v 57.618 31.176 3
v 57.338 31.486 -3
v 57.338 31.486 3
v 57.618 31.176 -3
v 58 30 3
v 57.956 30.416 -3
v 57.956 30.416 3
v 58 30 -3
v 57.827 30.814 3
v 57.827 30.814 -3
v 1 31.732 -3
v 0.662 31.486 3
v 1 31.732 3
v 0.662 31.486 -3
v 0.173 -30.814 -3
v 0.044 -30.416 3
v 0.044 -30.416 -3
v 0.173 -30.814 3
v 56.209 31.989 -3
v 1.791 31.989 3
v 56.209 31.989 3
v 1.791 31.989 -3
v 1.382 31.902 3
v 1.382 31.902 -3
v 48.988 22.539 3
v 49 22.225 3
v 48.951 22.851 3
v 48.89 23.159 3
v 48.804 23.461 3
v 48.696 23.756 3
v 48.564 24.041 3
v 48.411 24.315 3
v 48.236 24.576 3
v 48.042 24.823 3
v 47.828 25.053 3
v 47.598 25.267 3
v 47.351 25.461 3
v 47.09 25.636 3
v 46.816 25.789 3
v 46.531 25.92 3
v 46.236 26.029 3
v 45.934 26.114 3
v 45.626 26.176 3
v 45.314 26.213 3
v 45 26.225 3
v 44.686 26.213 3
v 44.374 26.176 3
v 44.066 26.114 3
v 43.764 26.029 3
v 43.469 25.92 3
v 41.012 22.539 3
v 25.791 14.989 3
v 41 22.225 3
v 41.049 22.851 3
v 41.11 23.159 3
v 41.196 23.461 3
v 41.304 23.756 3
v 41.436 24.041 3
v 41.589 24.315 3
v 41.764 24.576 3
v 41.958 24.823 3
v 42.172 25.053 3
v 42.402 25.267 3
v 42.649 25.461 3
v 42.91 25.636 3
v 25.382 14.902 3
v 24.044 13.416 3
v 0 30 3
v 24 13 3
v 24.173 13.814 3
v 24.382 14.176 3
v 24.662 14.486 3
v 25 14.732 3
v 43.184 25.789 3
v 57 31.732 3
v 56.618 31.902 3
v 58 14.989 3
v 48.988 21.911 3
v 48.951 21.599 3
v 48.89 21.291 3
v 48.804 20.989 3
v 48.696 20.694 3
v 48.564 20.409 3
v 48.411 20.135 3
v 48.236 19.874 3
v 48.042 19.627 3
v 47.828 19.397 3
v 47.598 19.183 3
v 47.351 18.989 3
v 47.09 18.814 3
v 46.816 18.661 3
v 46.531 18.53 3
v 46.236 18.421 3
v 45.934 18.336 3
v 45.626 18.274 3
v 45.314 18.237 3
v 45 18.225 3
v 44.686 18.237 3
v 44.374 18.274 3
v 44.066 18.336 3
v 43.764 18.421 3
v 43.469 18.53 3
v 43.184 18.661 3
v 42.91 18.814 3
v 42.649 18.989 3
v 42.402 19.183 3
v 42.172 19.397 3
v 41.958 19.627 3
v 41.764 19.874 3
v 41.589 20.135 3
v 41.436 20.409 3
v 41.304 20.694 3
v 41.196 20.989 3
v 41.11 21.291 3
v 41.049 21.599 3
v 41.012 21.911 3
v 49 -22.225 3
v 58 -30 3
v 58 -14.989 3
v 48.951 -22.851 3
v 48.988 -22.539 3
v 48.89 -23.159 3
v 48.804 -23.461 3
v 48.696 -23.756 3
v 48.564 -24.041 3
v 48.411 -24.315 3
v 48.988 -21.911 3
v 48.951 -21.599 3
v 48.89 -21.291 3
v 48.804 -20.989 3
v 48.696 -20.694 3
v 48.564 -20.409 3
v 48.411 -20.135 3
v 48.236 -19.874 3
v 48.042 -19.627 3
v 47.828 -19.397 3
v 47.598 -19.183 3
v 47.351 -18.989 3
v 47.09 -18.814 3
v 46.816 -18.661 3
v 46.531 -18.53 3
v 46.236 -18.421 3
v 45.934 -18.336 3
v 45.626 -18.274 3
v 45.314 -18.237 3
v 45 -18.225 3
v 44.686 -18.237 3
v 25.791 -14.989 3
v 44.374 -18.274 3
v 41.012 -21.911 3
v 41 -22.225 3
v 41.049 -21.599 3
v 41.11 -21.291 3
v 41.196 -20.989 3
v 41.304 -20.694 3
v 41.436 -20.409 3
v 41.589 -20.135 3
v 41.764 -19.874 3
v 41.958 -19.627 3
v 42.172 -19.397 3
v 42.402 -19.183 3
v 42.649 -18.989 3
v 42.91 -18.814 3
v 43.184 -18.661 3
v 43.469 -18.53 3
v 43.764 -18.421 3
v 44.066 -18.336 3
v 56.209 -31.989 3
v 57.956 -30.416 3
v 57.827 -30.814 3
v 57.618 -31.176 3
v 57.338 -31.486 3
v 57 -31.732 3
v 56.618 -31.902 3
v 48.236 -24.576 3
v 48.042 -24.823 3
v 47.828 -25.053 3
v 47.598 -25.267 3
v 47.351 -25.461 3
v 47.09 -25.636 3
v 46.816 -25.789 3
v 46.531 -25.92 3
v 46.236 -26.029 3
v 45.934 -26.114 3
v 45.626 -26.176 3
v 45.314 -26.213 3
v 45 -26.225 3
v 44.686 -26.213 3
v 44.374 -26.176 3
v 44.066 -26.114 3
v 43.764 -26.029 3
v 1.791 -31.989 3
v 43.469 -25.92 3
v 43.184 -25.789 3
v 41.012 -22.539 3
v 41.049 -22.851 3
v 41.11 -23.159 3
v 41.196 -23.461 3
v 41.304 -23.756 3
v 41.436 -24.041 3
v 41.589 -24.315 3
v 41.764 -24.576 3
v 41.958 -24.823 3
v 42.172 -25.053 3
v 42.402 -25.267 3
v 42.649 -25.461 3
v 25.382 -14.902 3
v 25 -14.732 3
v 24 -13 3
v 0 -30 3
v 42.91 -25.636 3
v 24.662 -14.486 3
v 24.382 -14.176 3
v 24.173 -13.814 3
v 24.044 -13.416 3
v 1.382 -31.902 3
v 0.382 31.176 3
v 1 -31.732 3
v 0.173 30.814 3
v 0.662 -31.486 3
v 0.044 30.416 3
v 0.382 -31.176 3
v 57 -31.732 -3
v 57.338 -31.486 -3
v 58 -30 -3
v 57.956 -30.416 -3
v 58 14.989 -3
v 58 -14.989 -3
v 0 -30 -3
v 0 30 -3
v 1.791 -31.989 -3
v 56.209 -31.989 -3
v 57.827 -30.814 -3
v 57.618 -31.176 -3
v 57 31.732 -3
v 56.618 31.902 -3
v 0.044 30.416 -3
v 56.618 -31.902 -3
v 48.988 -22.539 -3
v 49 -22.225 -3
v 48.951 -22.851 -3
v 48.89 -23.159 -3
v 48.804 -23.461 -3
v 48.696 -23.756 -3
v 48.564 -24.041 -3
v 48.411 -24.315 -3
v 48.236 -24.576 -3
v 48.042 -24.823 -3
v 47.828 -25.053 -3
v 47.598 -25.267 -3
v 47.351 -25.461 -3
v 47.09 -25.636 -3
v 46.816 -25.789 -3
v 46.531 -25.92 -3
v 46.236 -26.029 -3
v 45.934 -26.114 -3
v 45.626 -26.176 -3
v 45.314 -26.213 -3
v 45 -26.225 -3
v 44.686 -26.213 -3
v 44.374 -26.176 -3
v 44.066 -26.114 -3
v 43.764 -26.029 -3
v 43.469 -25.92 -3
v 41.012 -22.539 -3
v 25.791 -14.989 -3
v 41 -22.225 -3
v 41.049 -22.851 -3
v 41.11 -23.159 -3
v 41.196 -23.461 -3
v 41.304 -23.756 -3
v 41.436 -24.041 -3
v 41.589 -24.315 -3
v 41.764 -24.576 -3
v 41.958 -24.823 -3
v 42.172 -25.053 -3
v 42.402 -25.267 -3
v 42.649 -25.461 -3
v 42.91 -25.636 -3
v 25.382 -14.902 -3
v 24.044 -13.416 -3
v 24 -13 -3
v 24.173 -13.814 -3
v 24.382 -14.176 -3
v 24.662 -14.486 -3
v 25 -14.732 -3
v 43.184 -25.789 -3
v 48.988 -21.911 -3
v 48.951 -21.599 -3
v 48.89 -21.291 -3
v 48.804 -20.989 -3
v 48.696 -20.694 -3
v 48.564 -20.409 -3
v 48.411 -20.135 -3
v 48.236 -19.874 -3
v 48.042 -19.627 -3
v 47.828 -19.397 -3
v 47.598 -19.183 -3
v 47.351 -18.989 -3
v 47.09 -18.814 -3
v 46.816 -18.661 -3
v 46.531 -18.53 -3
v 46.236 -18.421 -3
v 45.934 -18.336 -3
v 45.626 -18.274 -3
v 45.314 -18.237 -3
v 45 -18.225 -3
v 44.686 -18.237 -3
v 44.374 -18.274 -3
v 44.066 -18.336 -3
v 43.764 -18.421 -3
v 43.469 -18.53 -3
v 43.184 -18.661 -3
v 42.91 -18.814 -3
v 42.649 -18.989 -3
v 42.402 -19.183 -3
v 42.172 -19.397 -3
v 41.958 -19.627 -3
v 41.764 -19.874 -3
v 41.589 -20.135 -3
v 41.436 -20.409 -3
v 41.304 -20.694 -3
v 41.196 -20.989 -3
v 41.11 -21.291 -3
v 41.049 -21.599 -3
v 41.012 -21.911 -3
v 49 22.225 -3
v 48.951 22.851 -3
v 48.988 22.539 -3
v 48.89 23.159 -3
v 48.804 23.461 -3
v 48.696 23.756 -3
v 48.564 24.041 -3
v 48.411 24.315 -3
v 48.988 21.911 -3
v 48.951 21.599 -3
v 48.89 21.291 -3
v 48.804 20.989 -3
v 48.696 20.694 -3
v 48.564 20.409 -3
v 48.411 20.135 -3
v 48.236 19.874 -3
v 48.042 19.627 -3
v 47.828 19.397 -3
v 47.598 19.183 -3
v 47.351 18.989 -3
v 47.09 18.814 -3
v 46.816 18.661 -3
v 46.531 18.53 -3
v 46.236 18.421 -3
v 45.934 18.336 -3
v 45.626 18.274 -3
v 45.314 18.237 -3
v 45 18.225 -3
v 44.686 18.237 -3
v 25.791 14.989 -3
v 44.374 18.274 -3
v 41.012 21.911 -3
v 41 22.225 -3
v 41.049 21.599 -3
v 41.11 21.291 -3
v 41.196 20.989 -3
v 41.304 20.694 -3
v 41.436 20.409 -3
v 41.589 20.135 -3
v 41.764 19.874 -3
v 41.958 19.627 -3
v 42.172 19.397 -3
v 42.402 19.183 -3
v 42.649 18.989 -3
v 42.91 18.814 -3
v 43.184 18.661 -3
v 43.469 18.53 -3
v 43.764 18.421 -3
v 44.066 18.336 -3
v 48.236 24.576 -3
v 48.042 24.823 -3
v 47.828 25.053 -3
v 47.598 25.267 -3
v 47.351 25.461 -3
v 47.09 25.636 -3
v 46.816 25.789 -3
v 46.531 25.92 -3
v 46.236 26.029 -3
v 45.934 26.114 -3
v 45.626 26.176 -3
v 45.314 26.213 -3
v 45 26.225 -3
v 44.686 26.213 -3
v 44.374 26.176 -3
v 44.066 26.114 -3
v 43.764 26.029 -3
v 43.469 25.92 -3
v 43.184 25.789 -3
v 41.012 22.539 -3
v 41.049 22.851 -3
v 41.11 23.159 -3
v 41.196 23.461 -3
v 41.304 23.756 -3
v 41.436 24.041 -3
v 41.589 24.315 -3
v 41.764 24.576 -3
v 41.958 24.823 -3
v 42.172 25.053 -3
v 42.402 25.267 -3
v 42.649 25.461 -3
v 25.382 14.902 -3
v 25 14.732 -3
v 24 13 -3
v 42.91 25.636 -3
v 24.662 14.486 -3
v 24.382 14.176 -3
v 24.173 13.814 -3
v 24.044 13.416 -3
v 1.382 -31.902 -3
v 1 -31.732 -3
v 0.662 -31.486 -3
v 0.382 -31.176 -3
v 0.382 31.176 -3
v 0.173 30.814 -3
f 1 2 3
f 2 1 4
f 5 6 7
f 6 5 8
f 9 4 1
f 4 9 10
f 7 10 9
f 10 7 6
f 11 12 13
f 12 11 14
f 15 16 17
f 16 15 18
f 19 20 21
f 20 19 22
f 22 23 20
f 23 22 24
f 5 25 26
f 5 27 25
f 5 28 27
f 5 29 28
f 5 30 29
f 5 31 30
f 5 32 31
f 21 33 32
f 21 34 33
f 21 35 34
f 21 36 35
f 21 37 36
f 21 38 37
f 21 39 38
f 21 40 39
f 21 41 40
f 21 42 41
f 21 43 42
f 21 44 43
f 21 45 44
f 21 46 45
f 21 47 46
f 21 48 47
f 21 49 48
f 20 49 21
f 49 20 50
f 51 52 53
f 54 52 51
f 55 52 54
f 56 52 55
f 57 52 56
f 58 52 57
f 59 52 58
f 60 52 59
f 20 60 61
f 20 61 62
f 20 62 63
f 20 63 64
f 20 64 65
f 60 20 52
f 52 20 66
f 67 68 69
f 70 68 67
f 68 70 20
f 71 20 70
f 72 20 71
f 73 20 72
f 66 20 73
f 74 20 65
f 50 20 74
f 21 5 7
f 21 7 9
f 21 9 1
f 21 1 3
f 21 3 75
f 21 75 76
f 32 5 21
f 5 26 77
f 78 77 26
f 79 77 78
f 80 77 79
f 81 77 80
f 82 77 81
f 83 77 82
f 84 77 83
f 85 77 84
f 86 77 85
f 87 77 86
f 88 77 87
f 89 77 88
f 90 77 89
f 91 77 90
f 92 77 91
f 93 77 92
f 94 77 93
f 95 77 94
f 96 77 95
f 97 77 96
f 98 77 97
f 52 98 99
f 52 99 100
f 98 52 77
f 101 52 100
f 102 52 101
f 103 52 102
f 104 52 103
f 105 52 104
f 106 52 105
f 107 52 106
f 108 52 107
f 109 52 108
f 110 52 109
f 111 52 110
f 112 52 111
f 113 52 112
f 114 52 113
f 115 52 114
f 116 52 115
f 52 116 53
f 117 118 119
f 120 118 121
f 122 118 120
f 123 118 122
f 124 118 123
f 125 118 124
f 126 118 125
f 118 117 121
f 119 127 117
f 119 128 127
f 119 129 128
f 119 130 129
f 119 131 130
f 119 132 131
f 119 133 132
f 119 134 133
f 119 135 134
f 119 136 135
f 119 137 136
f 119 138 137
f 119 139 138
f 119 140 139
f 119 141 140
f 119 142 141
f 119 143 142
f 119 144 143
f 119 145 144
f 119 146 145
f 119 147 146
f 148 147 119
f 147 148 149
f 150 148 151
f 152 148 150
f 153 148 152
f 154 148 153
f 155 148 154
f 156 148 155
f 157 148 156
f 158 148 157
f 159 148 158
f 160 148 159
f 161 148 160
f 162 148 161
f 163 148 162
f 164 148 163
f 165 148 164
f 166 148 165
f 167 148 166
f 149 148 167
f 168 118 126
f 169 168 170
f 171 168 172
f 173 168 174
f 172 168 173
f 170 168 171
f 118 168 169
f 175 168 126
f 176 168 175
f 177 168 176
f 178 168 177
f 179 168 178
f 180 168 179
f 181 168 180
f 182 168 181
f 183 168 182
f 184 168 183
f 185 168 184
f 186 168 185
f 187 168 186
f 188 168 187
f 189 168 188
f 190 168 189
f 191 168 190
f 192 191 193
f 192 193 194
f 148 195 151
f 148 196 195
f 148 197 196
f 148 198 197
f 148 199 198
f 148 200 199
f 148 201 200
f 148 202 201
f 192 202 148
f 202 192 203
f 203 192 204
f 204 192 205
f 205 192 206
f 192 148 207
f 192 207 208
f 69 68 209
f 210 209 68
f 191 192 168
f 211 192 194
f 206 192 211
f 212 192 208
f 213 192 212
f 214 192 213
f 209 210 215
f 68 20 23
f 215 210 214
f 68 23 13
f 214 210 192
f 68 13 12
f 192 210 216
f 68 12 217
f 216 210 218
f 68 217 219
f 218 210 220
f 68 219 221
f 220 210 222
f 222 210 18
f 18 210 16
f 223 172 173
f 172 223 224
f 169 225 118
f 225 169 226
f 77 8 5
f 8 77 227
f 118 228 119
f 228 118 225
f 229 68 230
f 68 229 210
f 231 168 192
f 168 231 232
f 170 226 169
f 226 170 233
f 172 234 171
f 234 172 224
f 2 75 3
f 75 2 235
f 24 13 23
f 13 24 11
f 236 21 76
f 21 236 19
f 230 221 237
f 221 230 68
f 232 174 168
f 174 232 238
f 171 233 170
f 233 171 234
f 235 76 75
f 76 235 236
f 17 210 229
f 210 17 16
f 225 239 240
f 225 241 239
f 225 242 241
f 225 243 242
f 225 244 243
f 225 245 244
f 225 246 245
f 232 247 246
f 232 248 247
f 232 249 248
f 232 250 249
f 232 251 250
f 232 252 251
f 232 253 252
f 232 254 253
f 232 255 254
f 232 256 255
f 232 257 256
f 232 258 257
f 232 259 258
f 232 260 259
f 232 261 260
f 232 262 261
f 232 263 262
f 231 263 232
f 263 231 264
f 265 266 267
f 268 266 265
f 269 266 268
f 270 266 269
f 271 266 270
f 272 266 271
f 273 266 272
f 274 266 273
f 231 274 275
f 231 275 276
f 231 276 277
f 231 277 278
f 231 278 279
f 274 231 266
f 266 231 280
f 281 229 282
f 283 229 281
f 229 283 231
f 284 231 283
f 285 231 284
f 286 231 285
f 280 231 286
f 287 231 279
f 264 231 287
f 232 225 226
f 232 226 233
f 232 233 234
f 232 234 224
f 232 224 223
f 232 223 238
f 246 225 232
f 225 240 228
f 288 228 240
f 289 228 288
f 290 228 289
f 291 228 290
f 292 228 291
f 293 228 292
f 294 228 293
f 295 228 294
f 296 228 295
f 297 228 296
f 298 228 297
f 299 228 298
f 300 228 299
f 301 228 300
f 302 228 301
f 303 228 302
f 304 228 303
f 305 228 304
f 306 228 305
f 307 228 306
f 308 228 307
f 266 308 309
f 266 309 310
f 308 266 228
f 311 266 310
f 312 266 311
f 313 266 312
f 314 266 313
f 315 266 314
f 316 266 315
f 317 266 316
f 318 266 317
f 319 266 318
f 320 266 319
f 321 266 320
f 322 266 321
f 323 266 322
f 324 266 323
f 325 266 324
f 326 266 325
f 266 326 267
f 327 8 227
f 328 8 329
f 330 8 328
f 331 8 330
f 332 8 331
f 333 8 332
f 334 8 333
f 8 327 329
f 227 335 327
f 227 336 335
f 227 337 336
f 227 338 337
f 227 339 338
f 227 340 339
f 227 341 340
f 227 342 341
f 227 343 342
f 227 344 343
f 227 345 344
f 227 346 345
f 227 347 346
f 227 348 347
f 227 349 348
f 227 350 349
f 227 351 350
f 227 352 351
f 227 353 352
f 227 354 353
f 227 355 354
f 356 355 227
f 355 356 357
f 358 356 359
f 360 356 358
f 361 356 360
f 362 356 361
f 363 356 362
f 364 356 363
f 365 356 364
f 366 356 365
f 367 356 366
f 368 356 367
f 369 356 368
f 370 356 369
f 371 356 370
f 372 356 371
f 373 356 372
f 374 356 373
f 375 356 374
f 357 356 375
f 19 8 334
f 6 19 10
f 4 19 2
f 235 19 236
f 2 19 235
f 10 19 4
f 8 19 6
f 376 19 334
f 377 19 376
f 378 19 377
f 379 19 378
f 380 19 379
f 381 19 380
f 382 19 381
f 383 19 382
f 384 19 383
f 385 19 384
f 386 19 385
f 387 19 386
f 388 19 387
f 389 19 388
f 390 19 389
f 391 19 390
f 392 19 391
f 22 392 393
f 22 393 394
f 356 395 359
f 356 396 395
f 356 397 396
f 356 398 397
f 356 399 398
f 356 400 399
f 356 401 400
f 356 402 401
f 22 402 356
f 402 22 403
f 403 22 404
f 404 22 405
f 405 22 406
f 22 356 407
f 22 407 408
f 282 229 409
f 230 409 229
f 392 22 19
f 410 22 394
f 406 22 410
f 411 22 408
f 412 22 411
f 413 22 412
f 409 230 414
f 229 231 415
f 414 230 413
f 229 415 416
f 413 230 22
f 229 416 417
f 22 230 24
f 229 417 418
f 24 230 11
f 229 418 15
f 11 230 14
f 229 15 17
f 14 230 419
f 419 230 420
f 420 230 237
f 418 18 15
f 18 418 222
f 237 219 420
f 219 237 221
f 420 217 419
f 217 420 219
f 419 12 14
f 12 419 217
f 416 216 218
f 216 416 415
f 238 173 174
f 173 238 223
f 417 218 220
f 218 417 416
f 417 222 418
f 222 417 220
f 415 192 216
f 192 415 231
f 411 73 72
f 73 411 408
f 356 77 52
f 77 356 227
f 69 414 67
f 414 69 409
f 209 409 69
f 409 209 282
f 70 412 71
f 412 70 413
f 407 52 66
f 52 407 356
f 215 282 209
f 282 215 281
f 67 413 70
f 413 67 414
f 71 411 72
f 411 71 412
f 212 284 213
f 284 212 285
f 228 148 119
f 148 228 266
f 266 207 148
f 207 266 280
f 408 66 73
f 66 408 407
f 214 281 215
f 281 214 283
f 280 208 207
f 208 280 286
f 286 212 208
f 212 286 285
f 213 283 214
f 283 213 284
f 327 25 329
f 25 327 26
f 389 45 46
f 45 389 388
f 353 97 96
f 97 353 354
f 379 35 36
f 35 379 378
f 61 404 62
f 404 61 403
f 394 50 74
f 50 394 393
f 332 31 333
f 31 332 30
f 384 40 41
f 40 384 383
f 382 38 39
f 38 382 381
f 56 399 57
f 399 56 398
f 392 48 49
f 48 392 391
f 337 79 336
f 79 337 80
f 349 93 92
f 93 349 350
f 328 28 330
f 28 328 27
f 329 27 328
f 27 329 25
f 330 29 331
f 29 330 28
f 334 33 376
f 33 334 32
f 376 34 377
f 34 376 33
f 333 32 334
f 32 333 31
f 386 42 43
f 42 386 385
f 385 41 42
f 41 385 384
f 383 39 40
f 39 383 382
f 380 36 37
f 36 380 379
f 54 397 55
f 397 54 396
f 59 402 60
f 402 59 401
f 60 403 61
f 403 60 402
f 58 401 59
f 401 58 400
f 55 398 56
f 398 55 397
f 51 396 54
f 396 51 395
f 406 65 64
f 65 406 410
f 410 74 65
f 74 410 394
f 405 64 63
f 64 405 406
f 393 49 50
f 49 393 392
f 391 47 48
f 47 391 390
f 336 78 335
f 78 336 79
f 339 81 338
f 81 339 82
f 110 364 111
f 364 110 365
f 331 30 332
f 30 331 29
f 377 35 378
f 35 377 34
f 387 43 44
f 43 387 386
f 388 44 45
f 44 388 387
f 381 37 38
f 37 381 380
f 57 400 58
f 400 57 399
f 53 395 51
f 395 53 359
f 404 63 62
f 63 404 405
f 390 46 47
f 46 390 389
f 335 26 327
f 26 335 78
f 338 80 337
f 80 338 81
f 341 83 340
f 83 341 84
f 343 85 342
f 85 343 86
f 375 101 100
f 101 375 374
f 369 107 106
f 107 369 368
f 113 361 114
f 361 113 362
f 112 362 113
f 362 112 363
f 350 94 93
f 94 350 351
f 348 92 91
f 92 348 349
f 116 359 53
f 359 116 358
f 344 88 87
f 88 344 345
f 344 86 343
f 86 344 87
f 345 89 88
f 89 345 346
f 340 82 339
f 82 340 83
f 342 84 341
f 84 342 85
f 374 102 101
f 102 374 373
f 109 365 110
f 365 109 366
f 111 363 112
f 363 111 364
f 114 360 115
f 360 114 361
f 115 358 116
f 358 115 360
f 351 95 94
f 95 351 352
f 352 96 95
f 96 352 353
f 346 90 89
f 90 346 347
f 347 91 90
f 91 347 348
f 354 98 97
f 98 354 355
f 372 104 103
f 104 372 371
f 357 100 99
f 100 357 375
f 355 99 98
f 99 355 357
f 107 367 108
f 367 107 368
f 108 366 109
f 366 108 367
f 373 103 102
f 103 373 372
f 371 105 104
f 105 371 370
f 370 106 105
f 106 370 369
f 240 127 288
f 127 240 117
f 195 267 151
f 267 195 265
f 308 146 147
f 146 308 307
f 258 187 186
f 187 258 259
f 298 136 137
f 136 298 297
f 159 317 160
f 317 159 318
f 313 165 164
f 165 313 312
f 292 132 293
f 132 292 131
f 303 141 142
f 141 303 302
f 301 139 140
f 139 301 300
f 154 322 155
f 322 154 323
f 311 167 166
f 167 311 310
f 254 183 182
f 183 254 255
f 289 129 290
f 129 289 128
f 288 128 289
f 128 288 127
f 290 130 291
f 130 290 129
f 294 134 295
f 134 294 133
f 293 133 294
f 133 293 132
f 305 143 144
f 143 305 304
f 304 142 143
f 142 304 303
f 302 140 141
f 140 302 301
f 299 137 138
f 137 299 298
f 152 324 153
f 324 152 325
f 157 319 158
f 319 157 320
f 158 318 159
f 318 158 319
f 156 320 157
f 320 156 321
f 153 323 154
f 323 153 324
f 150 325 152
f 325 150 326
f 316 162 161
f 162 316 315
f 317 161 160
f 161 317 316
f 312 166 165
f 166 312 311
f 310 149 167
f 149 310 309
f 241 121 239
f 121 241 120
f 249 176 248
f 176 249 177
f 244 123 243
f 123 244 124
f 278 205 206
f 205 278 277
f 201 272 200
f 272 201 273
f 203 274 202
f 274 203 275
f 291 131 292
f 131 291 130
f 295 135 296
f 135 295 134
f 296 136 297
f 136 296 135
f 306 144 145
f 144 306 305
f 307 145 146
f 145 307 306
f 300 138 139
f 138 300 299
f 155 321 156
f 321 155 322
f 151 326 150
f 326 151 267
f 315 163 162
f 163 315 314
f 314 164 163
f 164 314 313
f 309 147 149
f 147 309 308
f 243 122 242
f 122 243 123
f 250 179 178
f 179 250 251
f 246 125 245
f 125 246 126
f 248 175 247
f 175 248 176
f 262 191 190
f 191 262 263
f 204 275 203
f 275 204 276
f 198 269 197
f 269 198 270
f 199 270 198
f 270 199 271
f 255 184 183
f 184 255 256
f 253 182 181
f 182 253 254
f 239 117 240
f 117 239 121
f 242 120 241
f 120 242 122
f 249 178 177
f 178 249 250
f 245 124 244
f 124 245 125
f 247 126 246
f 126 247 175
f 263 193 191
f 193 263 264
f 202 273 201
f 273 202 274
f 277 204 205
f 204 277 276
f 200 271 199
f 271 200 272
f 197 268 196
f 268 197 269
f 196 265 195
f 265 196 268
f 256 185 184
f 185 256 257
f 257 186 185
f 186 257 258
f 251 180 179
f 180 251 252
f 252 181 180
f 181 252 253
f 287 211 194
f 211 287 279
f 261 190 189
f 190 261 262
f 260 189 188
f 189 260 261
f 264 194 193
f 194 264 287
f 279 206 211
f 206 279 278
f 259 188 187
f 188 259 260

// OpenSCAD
// file: roundedcube.scad
// Higher definition curves
$fs = 0.01;

module roundedcube(size = [ 1, 1, 1 ], center = false, radius = 0.5,
                   apply_to = "all") {
  // If single value, convert to [x, y, z] vector
  size = (size[0] == undef) ? [ size, size, size ] : size;

  translate_min = radius;
  translate_xmax = size[0] - radius;
  translate_ymax = size[1] - radius;
  translate_zmax = size[2] - radius;

  diameter = radius * 2;

  module build_point(type = "sphere", rotate = [ 0, 0, 0 ]) {
    if (type == "sphere") {
      sphere(r = radius);
    } else if (type == "cylinder") {
      rotate(a = rotate) cylinder(h = diameter, r = radius, center = true);
    }
  }

  obj_translate = (center == false)
                      ? [ 0, 0, 0 ]
                      : [ -(size[0] / 2), -(size[1] / 2), -(size[2] / 2) ];

  translate(v = obj_translate) {
    hull() {
      for (translate_x = [ translate_min, translate_xmax ]) {
        x_at = (translate_x == translate_min) ? "min" : "max";
        for (translate_y = [ translate_min, translate_ymax ]) {
          y_at = (translate_y == translate_min) ? "min" : "max";
          for (translate_z = [ translate_min, translate_zmax ]) {
            z_at = (translate_z == translate_min) ? "min" : "max";

            translate(v =
                          [
                            translate_x, translate_y,
                            translate_z
                          ]) if ((apply_to == "all") ||
                                 (apply_to == "xmin" && x_at == "min") ||
                                 (apply_to == "xmax" && x_at == "max") ||
                                 (apply_to == "ymin" && y_at == "min") ||
                                 (apply_to == "ymax" && y_at == "max") ||
                                 (apply_to == "zmin" && z_at == "min") ||
                                 (apply_to == "zmax" && z_at == "max")) {
              build_point("sphere");
            }
            else {
              rotate =
                  (apply_to == "xmin" || apply_to == "xmax" || apply_to == "x")
                      ? [ 0, 90, 0 ]
                      : ((apply_to == "ymin" || apply_to == "ymax" ||
                          apply_to == "y")
                             ? [ 90, 90, 0 ]
                             : [ 0, 0, 0 ]);
              build_point("cylinder", rotate);
            }
          }
        }
      }
    }
  }
}
// file: common/common_functions.scad
// common_functions.scad

function get_visual_overrun() = 0.1;

function ft_to_cm(ft) = ft * 30.48;

function cm_to_ft(cm) = cm / 30.48;

function in_to_cm(in) = in * 2.54;

function cm_to_in(cm) = cm / 2.54;
// main file
/**
 * @file sight_pusher_bracket.scad
 * @brief Sight-pusher bracket.
 *
 * units: millimeter
 *
 */

//ECHO: BASE_LENGTH = 58
//ECHO: BASE_WIDTH = 64
//ECHO: THICKNESS = 6
//ECHO: BOLT_HOLE_DIAMETER = 8
//ECHO: BOLT_HOLE_OFFSET_L = 45
//ECHO: BOLT_HOLE_C2C = 44.45
//ECHO: INNER_CUTOUT_LENGTH = 36
//ECHO: INNER_CUTOUT_WIDTH = 30
//ECHO: INNER_CUTOUT_OFFSET_L = 24

use <common/common_functions.scad>
use <roundedcube.scad>

BOLT_HOLE_DIAMETER = 8.0; // 5/16" rouned up
//BOLT_HOLE_DIAMETER = in_to_mm(5.0 / 16.0);

THICKNESS = 6.0;
BASE_LENGTH = 58.0;
BASE_WIDTH = 64.0;

INNER_CUTOUT_OFFSET_L = 24.0;
INNER_CUTOUT_LENGTH = 34.0 + 2; // Extend past the part for the rouned edges
INNER_CUTOUT_WIDTH = 30.0;

// Offset from top, down the length
BOLT_HOLE_OFFSET_L = 45.0;

// 44.45 (1 3/4 inches) bolt hole center-to-center
BOLT_HOLE_C2C = 44.45;

module drill_hole_cyl()
{
    #cylinder(h = THICKNESS + 1, d = BOLT_HOLE_DIAMETER, center = true, $fn = 80);
}

module inner_cutout()
{
    #roundedcube(
        [INNER_CUTOUT_LENGTH, INNER_CUTOUT_WIDTH, THICKNESS + 1],
        center = true,
        radius = 2.0,
        apply_to = "z");
}

module base()
{
    roundedcube(
        [BASE_LENGTH, BASE_WIDTH, THICKNESS],
        center = true,
        radius = 2.0,
        apply_to = "z"
    );
}

module assembly()
{
    difference()
    {
        translate([BASE_LENGTH / 2, 0, 0])
            base();
        
        translate([INNER_CUTOUT_LENGTH / 2, 0, 0])
            translate([INNER_CUTOUT_OFFSET_L, 0, 0])
                inner_cutout();

        translate([BOLT_HOLE_OFFSET_L, BOLT_HOLE_C2C / 2, 0])
            drill_hole_cyl();
        translate([BOLT_HOLE_OFFSET_L, -BOLT_HOLE_C2C / 2, 0])
            drill_hole_cyl();
    }
}

assembly();

echo(BASE_LENGTH = BASE_LENGTH);
echo(BASE_WIDTH = BASE_WIDTH);
echo(THICKNESS = THICKNESS);
echo(BOLT_HOLE_DIAMETER = BOLT_HOLE_DIAMETER);
echo(BOLT_HOLE_OFFSET_L = BOLT_HOLE_OFFSET_L);
echo(BOLT_HOLE_C2C = BOLT_HOLE_C2C);
echo(INNER_CUTOUT_LENGTH = INNER_CUTOUT_LENGTH);
echo(INNER_CUTOUT_WIDTH = INNER_CUTOUT_WIDTH);
echo(INNER_CUTOUT_OFFSET_L = INNER_CUTOUT_OFFSET_L);
